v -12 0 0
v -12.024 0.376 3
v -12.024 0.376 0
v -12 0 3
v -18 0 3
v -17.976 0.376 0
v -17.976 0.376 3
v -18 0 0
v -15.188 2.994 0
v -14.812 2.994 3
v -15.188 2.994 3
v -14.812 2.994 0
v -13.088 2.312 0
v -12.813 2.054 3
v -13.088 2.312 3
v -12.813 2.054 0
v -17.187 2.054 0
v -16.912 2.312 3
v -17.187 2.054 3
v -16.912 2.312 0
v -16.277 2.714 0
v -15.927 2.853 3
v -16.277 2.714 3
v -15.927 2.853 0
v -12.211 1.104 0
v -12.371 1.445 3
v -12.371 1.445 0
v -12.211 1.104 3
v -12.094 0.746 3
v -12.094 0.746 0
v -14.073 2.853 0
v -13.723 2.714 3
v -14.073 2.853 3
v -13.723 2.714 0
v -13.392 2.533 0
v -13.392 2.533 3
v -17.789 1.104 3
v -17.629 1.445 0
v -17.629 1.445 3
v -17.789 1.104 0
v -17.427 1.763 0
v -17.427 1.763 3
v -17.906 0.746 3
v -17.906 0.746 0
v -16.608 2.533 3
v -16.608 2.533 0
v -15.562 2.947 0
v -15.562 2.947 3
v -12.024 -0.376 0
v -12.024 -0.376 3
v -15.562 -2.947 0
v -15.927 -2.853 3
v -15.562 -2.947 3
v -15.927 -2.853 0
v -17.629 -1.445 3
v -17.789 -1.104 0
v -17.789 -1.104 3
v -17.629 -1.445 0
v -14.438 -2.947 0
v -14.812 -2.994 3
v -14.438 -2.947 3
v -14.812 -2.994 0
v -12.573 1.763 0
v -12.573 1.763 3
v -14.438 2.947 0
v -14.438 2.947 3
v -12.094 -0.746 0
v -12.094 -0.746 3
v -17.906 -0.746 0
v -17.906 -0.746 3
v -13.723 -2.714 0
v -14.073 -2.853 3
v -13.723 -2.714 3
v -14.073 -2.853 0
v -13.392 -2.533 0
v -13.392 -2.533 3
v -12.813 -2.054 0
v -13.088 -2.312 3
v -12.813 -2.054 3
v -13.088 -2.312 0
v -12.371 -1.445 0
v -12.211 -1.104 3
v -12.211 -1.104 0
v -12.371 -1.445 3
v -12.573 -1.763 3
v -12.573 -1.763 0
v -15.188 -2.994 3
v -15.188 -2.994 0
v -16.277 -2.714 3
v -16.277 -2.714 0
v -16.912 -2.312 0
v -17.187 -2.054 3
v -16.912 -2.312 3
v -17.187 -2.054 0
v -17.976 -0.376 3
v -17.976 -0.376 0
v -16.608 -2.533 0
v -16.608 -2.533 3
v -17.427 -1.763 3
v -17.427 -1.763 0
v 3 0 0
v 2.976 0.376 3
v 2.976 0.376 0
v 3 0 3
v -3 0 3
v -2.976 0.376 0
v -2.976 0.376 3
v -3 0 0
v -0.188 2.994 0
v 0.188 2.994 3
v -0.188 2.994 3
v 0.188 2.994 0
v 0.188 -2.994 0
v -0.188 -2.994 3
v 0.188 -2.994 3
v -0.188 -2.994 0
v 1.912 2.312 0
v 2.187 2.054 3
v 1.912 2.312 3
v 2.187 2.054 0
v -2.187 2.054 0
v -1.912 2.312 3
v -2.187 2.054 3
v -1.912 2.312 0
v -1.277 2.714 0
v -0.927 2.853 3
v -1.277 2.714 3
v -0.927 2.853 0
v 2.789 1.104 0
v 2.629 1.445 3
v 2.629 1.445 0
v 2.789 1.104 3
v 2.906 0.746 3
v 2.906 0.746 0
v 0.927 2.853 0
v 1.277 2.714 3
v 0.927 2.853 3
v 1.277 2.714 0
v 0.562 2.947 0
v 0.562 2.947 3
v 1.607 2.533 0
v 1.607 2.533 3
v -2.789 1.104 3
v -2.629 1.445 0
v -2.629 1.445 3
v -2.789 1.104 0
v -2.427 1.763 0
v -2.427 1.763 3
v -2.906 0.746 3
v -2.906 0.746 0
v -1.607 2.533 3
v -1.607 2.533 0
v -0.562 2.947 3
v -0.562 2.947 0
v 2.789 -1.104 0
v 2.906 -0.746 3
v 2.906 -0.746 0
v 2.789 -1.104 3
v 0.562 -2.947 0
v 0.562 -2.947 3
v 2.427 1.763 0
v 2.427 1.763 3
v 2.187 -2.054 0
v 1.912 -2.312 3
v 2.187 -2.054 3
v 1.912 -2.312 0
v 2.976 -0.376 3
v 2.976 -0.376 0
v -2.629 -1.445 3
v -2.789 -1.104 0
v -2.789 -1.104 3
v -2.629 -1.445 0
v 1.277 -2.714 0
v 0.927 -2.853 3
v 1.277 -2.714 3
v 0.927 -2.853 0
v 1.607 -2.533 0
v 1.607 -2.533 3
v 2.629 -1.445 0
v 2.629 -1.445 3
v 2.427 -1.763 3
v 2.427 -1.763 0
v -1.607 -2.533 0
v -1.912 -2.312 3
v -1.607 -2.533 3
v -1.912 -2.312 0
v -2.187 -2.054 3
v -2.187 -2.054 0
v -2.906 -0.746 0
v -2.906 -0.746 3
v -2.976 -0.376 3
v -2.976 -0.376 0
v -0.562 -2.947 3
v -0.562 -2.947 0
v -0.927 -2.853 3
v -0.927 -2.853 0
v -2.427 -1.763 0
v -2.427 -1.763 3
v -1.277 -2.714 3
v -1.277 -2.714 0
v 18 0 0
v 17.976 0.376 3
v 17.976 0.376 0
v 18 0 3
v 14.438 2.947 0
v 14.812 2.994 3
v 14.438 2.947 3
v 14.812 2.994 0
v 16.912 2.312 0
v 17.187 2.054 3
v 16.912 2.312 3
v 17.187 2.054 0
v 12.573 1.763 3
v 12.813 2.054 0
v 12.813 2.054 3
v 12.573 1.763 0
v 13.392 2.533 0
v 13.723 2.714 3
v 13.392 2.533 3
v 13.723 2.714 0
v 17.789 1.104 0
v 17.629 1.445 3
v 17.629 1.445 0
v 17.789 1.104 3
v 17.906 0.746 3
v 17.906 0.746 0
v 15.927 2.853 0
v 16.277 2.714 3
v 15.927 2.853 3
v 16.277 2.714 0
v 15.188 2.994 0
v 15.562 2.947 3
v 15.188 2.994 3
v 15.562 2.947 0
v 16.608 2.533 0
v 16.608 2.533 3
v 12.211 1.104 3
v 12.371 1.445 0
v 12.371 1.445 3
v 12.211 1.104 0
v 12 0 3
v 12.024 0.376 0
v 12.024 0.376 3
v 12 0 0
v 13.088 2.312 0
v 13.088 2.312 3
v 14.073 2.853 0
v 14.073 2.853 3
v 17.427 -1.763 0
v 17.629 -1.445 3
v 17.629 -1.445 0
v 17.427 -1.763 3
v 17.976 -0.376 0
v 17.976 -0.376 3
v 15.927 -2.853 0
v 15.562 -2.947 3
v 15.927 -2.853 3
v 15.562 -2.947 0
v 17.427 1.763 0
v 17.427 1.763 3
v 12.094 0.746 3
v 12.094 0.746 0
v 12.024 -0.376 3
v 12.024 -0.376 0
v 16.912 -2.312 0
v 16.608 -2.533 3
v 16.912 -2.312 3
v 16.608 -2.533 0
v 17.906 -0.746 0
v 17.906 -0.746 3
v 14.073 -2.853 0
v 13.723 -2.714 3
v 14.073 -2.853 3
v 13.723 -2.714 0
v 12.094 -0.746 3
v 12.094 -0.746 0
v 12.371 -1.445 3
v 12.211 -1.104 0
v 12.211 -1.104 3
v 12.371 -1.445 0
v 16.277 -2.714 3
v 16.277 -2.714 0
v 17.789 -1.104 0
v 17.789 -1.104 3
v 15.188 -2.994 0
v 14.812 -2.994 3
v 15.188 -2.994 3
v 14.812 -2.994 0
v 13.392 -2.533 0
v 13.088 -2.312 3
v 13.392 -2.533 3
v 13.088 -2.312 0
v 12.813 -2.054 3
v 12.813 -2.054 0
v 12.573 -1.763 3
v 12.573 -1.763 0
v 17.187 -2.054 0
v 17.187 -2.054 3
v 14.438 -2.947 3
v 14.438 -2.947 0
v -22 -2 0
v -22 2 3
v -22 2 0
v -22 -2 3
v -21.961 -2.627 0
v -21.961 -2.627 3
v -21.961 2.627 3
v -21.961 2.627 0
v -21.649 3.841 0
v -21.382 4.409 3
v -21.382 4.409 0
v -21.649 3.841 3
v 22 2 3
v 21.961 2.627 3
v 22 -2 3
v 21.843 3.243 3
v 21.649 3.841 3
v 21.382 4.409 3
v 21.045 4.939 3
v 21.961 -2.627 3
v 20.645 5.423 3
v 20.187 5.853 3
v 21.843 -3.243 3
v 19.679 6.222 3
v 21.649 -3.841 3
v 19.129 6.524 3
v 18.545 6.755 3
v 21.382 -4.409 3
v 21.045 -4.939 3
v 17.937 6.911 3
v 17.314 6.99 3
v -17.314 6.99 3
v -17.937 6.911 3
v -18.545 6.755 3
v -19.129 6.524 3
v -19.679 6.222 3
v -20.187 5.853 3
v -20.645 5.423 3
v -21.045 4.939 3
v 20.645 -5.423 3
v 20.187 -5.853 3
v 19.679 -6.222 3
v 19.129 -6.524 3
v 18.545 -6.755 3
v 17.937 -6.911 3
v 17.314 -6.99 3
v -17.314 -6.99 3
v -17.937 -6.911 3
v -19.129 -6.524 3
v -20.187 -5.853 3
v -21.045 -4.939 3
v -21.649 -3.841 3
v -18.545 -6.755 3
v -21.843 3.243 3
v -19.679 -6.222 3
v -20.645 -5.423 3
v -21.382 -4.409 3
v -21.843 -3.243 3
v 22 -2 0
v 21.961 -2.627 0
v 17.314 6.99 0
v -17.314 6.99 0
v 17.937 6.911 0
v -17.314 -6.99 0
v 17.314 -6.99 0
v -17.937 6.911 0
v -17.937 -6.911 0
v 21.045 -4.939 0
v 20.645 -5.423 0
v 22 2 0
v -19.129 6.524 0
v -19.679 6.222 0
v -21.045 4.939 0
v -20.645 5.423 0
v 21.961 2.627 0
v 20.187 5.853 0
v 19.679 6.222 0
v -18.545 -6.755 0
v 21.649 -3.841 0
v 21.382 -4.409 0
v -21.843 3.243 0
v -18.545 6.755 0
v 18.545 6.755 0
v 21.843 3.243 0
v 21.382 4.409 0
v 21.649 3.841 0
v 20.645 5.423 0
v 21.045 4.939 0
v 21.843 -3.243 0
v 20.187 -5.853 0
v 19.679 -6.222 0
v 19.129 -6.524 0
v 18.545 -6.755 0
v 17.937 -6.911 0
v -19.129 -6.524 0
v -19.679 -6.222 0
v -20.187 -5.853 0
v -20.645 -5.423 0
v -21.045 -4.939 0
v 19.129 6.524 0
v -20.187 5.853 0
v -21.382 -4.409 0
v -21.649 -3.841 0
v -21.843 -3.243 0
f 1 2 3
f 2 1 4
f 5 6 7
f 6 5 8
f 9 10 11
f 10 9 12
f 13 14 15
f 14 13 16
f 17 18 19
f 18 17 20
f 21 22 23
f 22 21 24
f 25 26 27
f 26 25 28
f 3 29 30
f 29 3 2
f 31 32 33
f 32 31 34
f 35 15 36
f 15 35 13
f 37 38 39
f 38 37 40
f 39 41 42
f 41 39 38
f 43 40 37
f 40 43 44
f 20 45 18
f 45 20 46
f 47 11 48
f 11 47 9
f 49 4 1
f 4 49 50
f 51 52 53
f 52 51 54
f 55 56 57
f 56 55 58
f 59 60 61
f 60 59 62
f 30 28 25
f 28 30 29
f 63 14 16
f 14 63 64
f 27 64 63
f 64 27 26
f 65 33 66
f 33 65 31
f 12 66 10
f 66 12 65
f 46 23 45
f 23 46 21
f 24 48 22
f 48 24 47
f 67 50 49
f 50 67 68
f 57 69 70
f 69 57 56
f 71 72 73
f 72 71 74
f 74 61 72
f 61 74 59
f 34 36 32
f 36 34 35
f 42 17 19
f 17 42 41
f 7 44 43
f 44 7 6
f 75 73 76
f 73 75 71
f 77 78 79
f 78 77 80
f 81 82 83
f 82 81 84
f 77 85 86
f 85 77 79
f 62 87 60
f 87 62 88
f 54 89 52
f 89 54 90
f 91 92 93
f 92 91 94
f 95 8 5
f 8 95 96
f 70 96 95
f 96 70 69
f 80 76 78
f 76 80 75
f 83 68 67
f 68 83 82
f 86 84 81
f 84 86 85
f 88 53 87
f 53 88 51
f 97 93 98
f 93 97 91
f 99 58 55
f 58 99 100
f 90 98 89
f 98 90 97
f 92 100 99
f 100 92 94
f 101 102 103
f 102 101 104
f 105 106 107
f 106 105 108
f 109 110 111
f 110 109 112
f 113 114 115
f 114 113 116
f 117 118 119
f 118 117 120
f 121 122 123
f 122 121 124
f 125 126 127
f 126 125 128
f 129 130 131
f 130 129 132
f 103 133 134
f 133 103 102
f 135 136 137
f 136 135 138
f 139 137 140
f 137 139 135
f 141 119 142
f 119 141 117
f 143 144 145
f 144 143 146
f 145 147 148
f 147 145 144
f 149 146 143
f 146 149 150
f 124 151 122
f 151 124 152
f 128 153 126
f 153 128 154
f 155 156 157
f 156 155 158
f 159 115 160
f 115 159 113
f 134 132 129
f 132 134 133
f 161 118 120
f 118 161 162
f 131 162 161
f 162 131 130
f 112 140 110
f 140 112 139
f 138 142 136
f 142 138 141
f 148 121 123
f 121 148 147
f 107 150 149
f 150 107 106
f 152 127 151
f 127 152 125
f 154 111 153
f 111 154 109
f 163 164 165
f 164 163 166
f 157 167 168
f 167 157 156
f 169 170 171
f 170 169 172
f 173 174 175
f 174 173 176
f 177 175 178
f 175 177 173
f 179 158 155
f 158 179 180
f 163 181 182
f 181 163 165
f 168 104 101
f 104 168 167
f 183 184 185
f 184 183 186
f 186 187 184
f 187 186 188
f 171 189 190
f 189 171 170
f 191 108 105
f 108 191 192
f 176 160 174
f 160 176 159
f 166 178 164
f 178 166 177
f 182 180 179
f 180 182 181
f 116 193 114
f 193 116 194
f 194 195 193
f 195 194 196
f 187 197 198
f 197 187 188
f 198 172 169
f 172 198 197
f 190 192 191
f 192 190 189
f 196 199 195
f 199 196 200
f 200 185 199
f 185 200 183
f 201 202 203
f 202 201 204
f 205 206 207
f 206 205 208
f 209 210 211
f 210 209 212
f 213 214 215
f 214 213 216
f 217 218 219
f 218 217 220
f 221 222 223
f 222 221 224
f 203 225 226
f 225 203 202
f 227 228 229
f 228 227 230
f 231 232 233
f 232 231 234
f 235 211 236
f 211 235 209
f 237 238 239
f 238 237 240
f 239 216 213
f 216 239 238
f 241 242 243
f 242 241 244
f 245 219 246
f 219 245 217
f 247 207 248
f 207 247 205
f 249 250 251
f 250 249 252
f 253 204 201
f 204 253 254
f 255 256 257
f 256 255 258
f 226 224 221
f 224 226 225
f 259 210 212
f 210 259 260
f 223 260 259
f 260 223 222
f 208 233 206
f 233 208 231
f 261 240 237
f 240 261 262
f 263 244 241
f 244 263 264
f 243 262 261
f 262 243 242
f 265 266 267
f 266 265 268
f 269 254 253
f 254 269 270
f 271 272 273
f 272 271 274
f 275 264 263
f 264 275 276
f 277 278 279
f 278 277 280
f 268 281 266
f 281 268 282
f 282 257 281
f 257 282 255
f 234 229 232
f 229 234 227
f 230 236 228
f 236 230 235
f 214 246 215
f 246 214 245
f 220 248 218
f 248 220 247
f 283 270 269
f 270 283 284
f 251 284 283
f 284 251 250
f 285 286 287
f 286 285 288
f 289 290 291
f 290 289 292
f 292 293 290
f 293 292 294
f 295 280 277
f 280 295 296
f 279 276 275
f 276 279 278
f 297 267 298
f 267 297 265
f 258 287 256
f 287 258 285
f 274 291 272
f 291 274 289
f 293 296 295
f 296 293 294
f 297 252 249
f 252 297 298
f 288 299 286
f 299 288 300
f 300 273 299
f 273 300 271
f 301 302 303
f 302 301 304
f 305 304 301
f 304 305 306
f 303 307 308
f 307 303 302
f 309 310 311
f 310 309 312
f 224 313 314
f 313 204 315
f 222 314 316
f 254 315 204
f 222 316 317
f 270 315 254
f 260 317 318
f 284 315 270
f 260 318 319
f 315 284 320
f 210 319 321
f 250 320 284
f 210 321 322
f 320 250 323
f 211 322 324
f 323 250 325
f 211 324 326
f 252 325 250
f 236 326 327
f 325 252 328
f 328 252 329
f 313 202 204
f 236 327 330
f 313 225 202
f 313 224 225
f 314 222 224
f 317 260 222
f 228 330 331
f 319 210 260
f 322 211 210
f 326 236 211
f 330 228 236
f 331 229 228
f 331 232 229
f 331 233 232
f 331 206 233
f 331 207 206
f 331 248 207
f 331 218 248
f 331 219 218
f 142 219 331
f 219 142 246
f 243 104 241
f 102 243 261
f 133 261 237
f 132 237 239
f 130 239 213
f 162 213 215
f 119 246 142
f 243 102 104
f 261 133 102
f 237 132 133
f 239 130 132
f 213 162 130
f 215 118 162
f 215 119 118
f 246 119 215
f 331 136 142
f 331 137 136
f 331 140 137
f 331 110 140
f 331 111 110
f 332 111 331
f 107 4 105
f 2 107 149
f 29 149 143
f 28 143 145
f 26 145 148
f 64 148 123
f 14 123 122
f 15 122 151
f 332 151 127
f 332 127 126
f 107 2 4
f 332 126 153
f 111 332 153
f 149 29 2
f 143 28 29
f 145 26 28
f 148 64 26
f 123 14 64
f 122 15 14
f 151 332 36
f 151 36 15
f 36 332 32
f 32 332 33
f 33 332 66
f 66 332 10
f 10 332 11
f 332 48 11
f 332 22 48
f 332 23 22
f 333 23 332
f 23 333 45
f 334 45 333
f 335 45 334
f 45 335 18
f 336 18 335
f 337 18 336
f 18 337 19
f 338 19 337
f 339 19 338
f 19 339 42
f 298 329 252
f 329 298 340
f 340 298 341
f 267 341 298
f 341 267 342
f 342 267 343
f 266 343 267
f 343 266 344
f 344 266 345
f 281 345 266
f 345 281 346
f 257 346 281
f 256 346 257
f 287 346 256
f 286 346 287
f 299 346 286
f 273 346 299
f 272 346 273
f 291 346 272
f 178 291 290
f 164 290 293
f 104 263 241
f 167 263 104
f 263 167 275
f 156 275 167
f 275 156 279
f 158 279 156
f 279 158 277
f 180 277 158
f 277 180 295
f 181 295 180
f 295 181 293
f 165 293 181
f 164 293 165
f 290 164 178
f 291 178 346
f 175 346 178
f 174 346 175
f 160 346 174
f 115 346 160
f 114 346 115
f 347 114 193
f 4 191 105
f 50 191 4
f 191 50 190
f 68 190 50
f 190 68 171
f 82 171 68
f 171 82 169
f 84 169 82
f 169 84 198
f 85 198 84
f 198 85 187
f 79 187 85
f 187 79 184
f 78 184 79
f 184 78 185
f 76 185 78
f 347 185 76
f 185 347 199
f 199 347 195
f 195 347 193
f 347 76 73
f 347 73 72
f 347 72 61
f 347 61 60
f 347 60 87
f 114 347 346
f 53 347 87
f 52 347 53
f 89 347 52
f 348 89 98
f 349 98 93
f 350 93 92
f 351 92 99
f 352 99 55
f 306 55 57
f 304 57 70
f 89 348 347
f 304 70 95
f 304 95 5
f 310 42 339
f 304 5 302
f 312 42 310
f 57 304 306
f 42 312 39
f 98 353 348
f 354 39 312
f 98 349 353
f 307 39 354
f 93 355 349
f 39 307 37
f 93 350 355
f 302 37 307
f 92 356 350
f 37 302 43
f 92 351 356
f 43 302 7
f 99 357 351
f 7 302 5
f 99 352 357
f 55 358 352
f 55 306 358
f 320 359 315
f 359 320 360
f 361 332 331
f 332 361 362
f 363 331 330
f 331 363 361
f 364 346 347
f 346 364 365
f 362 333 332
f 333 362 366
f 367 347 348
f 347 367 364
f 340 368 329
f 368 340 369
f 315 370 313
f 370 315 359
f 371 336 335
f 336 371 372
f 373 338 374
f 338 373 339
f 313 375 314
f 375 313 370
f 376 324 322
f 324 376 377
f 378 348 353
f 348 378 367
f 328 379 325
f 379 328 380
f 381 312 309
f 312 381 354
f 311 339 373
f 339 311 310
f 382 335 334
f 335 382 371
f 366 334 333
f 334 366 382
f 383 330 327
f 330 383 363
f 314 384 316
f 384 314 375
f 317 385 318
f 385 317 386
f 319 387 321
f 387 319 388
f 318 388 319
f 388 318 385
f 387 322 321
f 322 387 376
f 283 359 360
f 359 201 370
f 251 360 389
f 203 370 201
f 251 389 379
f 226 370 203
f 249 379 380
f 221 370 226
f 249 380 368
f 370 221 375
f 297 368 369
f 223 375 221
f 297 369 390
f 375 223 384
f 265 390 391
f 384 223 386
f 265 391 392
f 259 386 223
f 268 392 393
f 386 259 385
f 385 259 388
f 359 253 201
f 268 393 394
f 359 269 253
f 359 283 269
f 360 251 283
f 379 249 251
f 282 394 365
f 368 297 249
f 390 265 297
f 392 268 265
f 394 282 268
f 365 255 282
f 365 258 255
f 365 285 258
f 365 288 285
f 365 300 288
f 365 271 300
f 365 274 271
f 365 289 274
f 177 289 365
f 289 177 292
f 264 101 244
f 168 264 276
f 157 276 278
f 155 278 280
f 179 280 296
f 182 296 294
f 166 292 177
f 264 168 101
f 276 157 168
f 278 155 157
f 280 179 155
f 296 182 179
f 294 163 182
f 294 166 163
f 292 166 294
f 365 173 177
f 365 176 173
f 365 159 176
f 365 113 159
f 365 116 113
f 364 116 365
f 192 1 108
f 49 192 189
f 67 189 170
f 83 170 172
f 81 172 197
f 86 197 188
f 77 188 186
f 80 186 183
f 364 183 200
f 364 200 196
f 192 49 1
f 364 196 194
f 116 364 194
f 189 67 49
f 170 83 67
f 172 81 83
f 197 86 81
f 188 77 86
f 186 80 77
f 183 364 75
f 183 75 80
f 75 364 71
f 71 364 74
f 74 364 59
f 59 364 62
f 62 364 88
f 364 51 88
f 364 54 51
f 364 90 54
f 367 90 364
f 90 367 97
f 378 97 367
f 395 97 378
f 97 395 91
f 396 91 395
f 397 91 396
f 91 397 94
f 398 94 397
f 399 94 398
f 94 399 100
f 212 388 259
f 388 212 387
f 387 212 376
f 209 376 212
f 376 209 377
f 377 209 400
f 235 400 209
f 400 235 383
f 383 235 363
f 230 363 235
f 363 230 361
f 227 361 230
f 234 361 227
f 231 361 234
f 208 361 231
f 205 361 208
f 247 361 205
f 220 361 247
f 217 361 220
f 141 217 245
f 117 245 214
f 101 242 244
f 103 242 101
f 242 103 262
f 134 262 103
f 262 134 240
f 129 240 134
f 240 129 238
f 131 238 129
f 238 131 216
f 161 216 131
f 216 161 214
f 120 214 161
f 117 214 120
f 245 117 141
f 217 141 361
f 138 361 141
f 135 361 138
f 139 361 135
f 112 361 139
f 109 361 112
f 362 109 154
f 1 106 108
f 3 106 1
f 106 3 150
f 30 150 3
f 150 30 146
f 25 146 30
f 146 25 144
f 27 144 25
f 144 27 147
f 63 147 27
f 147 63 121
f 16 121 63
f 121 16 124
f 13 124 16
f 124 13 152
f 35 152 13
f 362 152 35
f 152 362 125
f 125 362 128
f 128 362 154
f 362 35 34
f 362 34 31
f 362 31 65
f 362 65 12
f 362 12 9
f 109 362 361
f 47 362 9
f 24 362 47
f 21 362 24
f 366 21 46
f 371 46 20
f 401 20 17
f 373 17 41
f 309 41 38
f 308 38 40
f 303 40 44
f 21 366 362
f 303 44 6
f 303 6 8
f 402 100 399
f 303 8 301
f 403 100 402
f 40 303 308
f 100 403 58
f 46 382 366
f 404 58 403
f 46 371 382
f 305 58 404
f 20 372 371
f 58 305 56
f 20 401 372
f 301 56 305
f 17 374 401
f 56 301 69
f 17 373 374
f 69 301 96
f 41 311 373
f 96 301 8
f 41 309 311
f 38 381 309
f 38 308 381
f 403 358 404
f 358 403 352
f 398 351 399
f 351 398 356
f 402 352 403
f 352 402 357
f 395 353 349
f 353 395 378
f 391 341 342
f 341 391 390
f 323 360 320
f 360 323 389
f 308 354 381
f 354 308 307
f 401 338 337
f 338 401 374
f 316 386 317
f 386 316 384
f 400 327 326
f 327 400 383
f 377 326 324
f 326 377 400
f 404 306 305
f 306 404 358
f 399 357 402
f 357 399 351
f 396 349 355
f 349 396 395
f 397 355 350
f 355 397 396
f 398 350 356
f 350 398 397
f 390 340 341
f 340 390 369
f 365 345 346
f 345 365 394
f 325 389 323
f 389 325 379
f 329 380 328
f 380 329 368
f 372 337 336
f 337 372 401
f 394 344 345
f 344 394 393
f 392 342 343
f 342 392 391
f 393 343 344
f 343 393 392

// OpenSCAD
// Generated by SolidPython 1.1.3 on 2023-03-13 21:42:52
$fn = 50;


difference() {
	union() {
		translate(v = [0, 0, 0]) {
			rotate(a = [0, 0, 0]) {
				hull() {
					translate(v = [-17.0000000000, 2.0000000000, 0]) {
						rotate(a = [0, 0, 0]) {
							translate(v = [0, 0, 0]) {
								rotate(a = [0, 0, 0]) {
									cylinder(h = 3, r = 5);
								}
							}
						}
					}
					translate(v = [17.0000000000, 2.0000000000, 0]) {
						rotate(a = [0, 0, 0]) {
							translate(v = [0, 0, 0]) {
								rotate(a = [0, 0, 0]) {
									cylinder(h = 3, r = 5);
								}
							}
						}
					}
					translate(v = [-17.0000000000, -2.0000000000, 0]) {
						rotate(a = [0, 0, 0]) {
							translate(v = [0, 0, 0]) {
								rotate(a = [0, 0, 0]) {
									cylinder(h = 3, r = 5);
								}
							}
						}
					}
					translate(v = [17.0000000000, -2.0000000000, 0]) {
						rotate(a = [0, 0, 0]) {
							translate(v = [0, 0, 0]) {
								rotate(a = [0, 0, 0]) {
									cylinder(h = 3, r = 5);
								}
							}
						}
					}
				}
			}
		}
	}
	union() {
		translate(v = [-15.0000000000, 0.0000000000, 0]) {
			rotate(a = [0, 0, 0]) {
				translate(v = [0, 0, -50]) {
					rotate(a = [0, 0, 0]) {
						cylinder(h = 100, r = 3.0000000000);
					}
				}
			}
		}
		translate(v = [0.0000000000, 0.0000000000, 0]) {
			rotate(a = [0, 0, 0]) {
				translate(v = [0, 0, -50]) {
					rotate(a = [0, 0, 0]) {
						cylinder(h = 100, r = 3.0000000000);
					}
				}
			}
		}
		translate(v = [15.0000000000, 0.0000000000, 0]) {
			rotate(a = [0, 0, 0]) {
				translate(v = [0, 0, -50]) {
					rotate(a = [0, 0, 0]) {
						cylinder(h = 100, r = 3.0000000000);
					}
				}
			}
		}
	}
}
/***********************************************
*********      SolidPython code:      **********
************************************************
 
from solid import *
import os
import subprocess

import oomB

import opsc_library_gen

mode = "laser"
#mode = "3d_print"

defined_objects = {}

radius_dict = {}
countersunk_dict = {}


def set_mode(m):
    global mode
    mode = m
    radius_dict['M6'] = 6.5/2
    radius_dict['M3'] = 3.3/2
    if mode == "laser":
        radius_dict['M6'] = 6/2
        radius_dict['M3'] = 3/2

    countersunk_dict['M3'] = {}
    countersunk_dict['M3']['little_rad'] = radius_dict['M3']
    countersunk_dict['M3']['big_rad'] = (5.5+0.6)/2
    if mode == "laser":
        countersunk_dict['M3']['big_rad'] = (4.75+0.6)/2
        countersunk_dict['M3']['little_rad'] = (4.75+0.6)/2

    countersunk_dict['M3']['height'] = 1.7


def opsc_make_object(filename, objects, save_type="none",resolution=50, layers = 1, tilediff = 200, mode="laser", overwrite=True):
    if overwrite or not os.path.exists(filename):
        set_mode(mode)
        save_type = save_type.lower()
        os.makedirs(os.path.dirname(filename), exist_ok=True)
        final_object = opsc_get_object(objects, mode = mode)
        # Save the final object to the specified filename    
        scad_render_to_file(final_object, filename, file_header='$fn = %s;' % resolution, include_orig_code=True)
        if save_type == "all":
            saveToAll(filename)
        elif save_type == "dxf":
            saveToDxf(filename)
        if mode == "laser":
            filename_laser = filename.replace(".scad","-flat.scad")
            scad_render_to_file(getLaser(final_object, layers=layers, tilediff=tilediff), filename_laser, file_header='$fn = %s;' % resolution, include_orig_code=True)
            if save_type == "all":
                saveToAll(filename_laser)
            elif save_type == "dxf":
                saveToDxf(filename_laser)


def opsc_get_object(objects, mode = "laser"):
    # Create the solidpython objects only include the positive objects and if they don't have inclusion or their inclusion is either all or mode
    # Initialize an empty list to store the results
    positive_objects = []

    # Iterate over the "objects" list
    for obj in objects:
        # Check if the current object has a "type" key with a value of "positive"
        if obj['type'] == 'positive':
            # Check if the current object has an "inclusion" key and its value matches "mode",
            # or if the current object does not have an "inclusion" key at all
            if not 'inclusion' in obj or obj['inclusion'] == "all" or obj['inclusion'] == mode:
                # Call the "get_opsc_item" function with the current object as an argument
                opsc_item = get_opsc_item(obj)
                # Add the result to the "positive_objects" list
                positive_objects.append(opsc_item)
# Initialize an empty list to store the results
    negative_objects = []

    # Iterate over the "objects" list
    for obj in objects:
        # Check if the current object has a "type" key with a value of "negative"
        if obj['type'] == 'negative':
            # Check if the current object has an "inclusion" key and its value matches "mode",
            # or if the current object does not have an "inclusion" key at all
            if not 'inclusion' in obj or obj['inclusion'] == "all" or obj['inclusion'] == mode:
                # Call the "get_opsc_item" function with the current object as an argument
                opsc_item = get_opsc_item(obj)
                # Add the result to the "negative_objects" list
                negative_objects.append(opsc_item)
    
    #positive_objects = [get_opsc_item(obj) for obj in objects if obj['type'] == 'positive']
    #negative_objects = [get_opsc_item(obj) for obj in objects if obj['type'] == 'negative']
    # Union the positive objects
    positive_object = union()(*positive_objects)
    # Union the negative objects
    negative_object = union()(*negative_objects)
    # Create the final object by subtracting the negative objects from the positive objects
    return difference()(positive_object, negative_object)

def get_opsc_item(params):
    # A dictionary to map radius string values to numerical values
    #radius_dict = {'small': 5, 'medium': 10, 'large': 15}
    # An array of function names for basic shapes
    basic_shapes = ['cube', 'sphere', 'cylinder']
    
    # An array of function names for other shapes
    other_shapes = ['hole', 'slot', 'rounded_rectangle', 'countersunk', 'polyg']
    


    # Convert radius to r if present, and remove radius from the params dictionary
    if 'radius' in params:
        if isinstance(params['radius'], str):
            # Use the radius_dict to map the radius string value to a numerical value
            params['r'] = radius_dict[params['radius']]
        else:
            params['r'] = params['radius']
        del params['radius']
    

    # Check if the object type is a basic shape
    if params['shape'] in basic_shapes:
        # Remove shape and unexpected dictionary values
        allowed_keys = {'size', 'r', 'r1', 'r2', 'd', 'h', 'rw', 'rh', 'dw', 'dh'}
        shape_params = {k: v for k, v in params.items() if k in allowed_keys}

        #params['m'] = "#"
        ###split for adding modifier
        try:
            m = params['m']
            func = globals()[params['shape']]
            return_value = get_opsc_transform(params,func(**shape_params))
            return_value = (return_value).set_modifier(m)
            return return_value
        except KeyError as e:
            return get_opsc_transform(params,globals()[params['shape']](**shape_params))
        
    elif params['shape'] == 'polygon':
        # Remove shape and unexpected dictionary values
        h  = params['height']
        allowed_keys = {'points'}
        shape_params = {k: v for k, v in params.items() if k in allowed_keys}

        # Call the corresponding function for the shape parameter, using ** notation to pass the shape_params dictionary as keyword arguments
        params["rot"] = [0,0,0]        
        try:
            m = params['m']
            func = globals()[params['shape']]
            return_value = get_opsc_transform(params,linear_extrude(h)(globals()[params['shape']](**shape_params)))
            return_value = (return_value).set_modifier(m)
            return return_value
        except KeyError as e:
            return_value = get_opsc_transform(params,linear_extrude(h)(globals()[params['shape']](**shape_params)))
            return_value = (return_value)
            return return_value


    # If the object type is not a basic shape, check if it's a defined object or one of the other shapes
    elif params['shape'] in other_shapes:
        # Call the corresponding function for the shape parameter, passing the params dictionary as an argument
        p2 = copy.deepcopy(params)
        p2["pos"] = [0,0,0]
        return get_opsc_transform(params,globals()[params['shape']](p2))
    
    # If the object is not a basic shape or a defined object, try to import it from a .scad file
    else:
        obj = defined_objects[params['shape']]
        return get_opsc_transform(params,obj)

def get_opsc_transform(params, solid_obj):
    # Rotate the object based on the 'rot' field in the params dictionary, or the 'rotX', 'rotY', and 'rotZ' fields if 'rot' is not present
    rot = params.get('rot', [])
    if rot:
        rotX, rotY, rotZ = rot
    else:
        rotX = params.get('rotX', 0)
        rotY = params.get('rotY', 0)
        rotZ = params.get('rotZ', 0)
    solid_obj = rotate([rotX, rotY, rotZ])(solid_obj)

    # Translate the object based on the 'pos' field in the params dictionary, or the 'x', 'y', and 'z' fields if 'pos' is not present
    pos = params.get('pos', [])
    if pos:
        x, y, z = pos
    else:
        x = params.get('x', 0)
        y = params.get('y', 0)
        z = params.get('z', 0)
    solid_obj = translate([x, y, z])(solid_obj)
    return solid_obj


import random

def opsc_easy_array(type, shape, repeats, pos_start, shift_arr, **kwargs):
    for i in range(0,3):
        repeats.append(1)
        pos_start.append(0)
        shift_arr.append(0)
    return_objects = []

    for x in range(0,repeats[0]):
        for y in range(0,repeats[1]):
            for z in range(0,repeats[2]):
                return_objects.append(opsc_easy(type, shape, pos=[pos_start[0]+x*shift_arr[0],pos_start[1]+y*shift_arr[1],pos_start[2]+z*shift_arr[2]], **kwargs))
    return return_objects                



def opsc_easy(type, shape, **kwargs):
    obj = {
        'type': type,
        'shape': shape
    }
    for param in ['size', 'r', 'r1', 'r2', 'd', 'h', 'rw', 'rh', 'dw', 'dh', 'pos', 'x', 'y', 'z', 'rot', 'rotX', 'rotY', 'rotZ', "w", "inclusion", 'sides', 'height', "m"]:
        if param in kwargs:
            obj[param] = kwargs[param]
    return obj

def hole(params):
    p2 = copy.deepcopy(params)  
    # Check if the radius is a string and replace it with the corresponding value from the dictionary
    if isinstance(p2['r'], str):
        p2['r'] = radius_dict[p2['r']]
    
    # Set the height to 100 if not specified
    if 'h' not in p2:
        p2['h'] = 100
        p2["pos"] = [0,0,-50]
    p2["center"] = True
    # Create the cylinder object
    p2["shape"] = "cylinder"
    p2["type"] = "positive"

    return get_opsc_item(p2)

import copy

def countersunk(params):
    p2 = copy.deepcopy(params)
    counter_rad = p2['r']
    p2['r'] = radius_dict[p2['r']]
    hp = copy.deepcopy(p2)
    hp["type"] = "positive"
    hp["shape"] = "hole"
    del hp["rot"]
    hol = get_opsc_item(hp)
    
    cp = copy.deepcopy(p2)
    cp["h"] = countersunk_dict[counter_rad]["height"]
    cp["r2"] = countersunk_dict[counter_rad]["little_rad"]
    cp["r1"] = countersunk_dict[counter_rad]["big_rad"]
    del cp["r"]
    del cp["rot"]
    cp["type"] = "positive"
    cp["shape"] = "cylinder"
    cp["pos"] = [0,0,0]

    top = get_opsc_item(cp)
    return union()(hol,top)



def slot(params):  
    p2 = copy.deepcopy(params) 
    if isinstance(p2['r'], str):
        p2['r'] = radius_dict[p2['r']]
    p2["type"] = "positive"
    p2["shape"] = "hole"
    del p2["rot"]
    p2["pos"] = [0,0,0]
    left = copy.deepcopy(p2)
    right = copy.deepcopy(p2)
    left["pos"][0] = p2["w"] / 2 - p2["r"] 
    
    right["pos"][0] = -p2["w"] / 2 + p2["r"] 
    pass
    leftObj = get_opsc_item(left)
    rightObj = get_opsc_item(right)
    return hull()(leftObj, rightObj)

def rounded_rectangle(params):   
    p2 = copy.deepcopy(params) 
    p2["h"] = p2["size"][2]
    p2["pos"] = p2.get("pos", [0, 0, 0]) 
    p2["type"] = "positive"
    p2["shape"] = "hole"
    p2["pos"] = [0,0,0]
    
    if 'rot' in p2:
        del p2["rot"]   
    if 'r' not in p2:
        p2["r"] = 5 
    tl = copy.deepcopy(p2)
    tr = copy.deepcopy(p2)
    bl = copy.deepcopy(p2)
    br = copy.deepcopy(p2)
    tl["pos"][0] = -(p2["size"][0] - p2["r"]*2)/2
    tl["pos"][1] = (p2["size"][1] - p2["r"]*2)/2
    tr["pos"][0] = (p2["size"][0] - p2["r"]*2)/2
    tr["pos"][1] = (p2["size"][1] - p2["r"]*2)/2
    bl["pos"][0] = -(p2["size"][0] - p2["r"]*2)/2
    bl["pos"][1] = -(p2["size"][1] - p2["r"]*2)/2
    br["pos"][0] = (p2["size"][0] - p2["r"]*2)/2
    br["pos"][1] = -(p2["size"][1] - p2["r"]*2)/2
    del tl["size"]
    del tr["size"]
    del bl["size"]
    del br["size"]
    tlo = get_opsc_item(tl)
    tro = get_opsc_item(tr)
    blo = get_opsc_item(bl)
    bro = get_opsc_item(br)    
    return hull()(tlo, tro, blo, bro)



def polyg(params):
    p2 = copy.deepcopy(params) 
    p2["type"] = "positive"
    p2["shape"] = "polygon"
    p2["pos"] = [0,0,0]
    sides = p2["sides"]
    radius = p2["r"]    
    angles = [i * 360 / sides for i in range(sides)]
    points = regular_polygon(sides, radius)
    
    p2["points"] = points
    return get_opsc_item(p2)

import math

def regular_polygon(num_sides, radius):
    # Calculate the angle between each side
    angle = 2 * math.pi / num_sides

    # Calculate the points of the polygon
    points = []
    for i in range(num_sides):
        x = radius * math.cos(i * angle)
        y = radius * math.sin(i * angle)
        points.append((x, y))
    return points

def import_scad_object(filename):
    # Import the .scad file and convert it to a solidpython object
    #filename = "parts"
    obj = import_scad(filename)
    return obj.main()



import os
import solid as solidpython

# A dictionary to store the defined objects


def load_scad_objects():
    opsc_library_gen.gen_library(defined_objects)

import random

def test(num_objects):
    objects = []
    for i in range(num_objects):
        # Choose a random shape
        #shape = random.choice(['cube', 'sphere', 'cylinder', 'hole', 'slot', "rounded_rectangle"])
        shape = random.choice(["rounded_rectangle"])

        # Choose a random type
        type = random.choice(['positive', 'negative'])
        
        # Create an empty object dictionary
        obj = {'shape': shape, 'type': type}
        
        # Set shape-specific parameters
        if obj['shape'] in ['cube']:
            obj['size'] =  [random.uniform(5, 15), random.uniform(5, 15), random.uniform(5, 15)]
        if obj['shape'] in ['rounded_rectangle']:
            obj['size'] =  [random.uniform(5, 15), random.uniform(5, 15), random.uniform(5, 15)]
            obj['r'] = random.uniform(0.5, 5)
        elif obj['shape'] == 'sphere':
            obj['r'] = random.uniform(5, 15)
        elif obj['shape'] in ['cylinder', 'hole']:
            obj['r'] = random.uniform(0.5, 5)
            obj['h'] = random.uniform(5, 15)
        elif obj['shape'] == 'slot':
            obj['r'] = random.uniform(0.5, 5)
            obj['h'] = random.uniform(5, 15)
            obj['w'] = random.uniform(5, 15)
        
        # Set a random position and rotation
        obj['pos'] = [random.uniform(-20, 20), random.uniform(-20, 20), random.uniform(-20, 20)]
        obj['rot'] = [random.uniform(-180, 180), random.uniform(-180, 180), random.uniform(-180, 180)]
        
        # Add the object to the list
        objects.append(obj)
    return objects

####### old file saving
def saveToAll(fileIn):
    saveToStl(fileIn)
    saveToDxf(fileIn)
    saveToPng(fileIn)
    saveToSvg(fileIn)

def saveToDxf(fileIn, fileOut="", copy_to_laser=True):
    if fileOut == "":
        fileOut = fileIn.replace(".scad",".dxf")
    saveToFile(fileIn, fileOut)


    
def saveToPng(fileIn, fileOut="",extra="--render"):
    if fileOut == "":
        fileOut = fileIn.replace(".scad",".png")
    saveToFile(fileIn, fileOut)

def saveToStl(fileIn, fileOut=""):
    if fileOut == "":
        fileOut = fileIn.replace(".scad",".stl")
    saveToFile(fileIn, fileOut)
    
def saveToSvg(fileIn, fileOut=""):
    if fileOut == "":
        fileOut = fileIn.replace(".scad",".svg")
    saveToFile(fileIn, fileOut)

def saveToFile(fileIn, fileOut,extra=""):
    #extra = extra + " --colorscheme Tomorrow"

    launchStr = 'openscad -o "' + fileOut + '"' + extra + ' "' + fileIn + '"'
    if ".png" in fileOut:
        launchStr = launchStr + " --render"
    print("            saveToFile launch string: " + launchStr)
    subprocess.run(launchStr)
    x=0

def getLaser(final_object,start=1.5,layers=1,thickness=3,tilediff=200):
        rv= []

        for x in range(layers):
            rv.append(translate([0,x*tilediff,0])(
                    projection()(
                        intersection()(translate([-500,-500,start+x*thickness])(cube(size=[1000,1000,0.1])),
                            final_object
                        )
                    )
            )
            )
            
        return union()(rv)

set_mode("laser")
load_scad_objects() 
 
************************************************/
